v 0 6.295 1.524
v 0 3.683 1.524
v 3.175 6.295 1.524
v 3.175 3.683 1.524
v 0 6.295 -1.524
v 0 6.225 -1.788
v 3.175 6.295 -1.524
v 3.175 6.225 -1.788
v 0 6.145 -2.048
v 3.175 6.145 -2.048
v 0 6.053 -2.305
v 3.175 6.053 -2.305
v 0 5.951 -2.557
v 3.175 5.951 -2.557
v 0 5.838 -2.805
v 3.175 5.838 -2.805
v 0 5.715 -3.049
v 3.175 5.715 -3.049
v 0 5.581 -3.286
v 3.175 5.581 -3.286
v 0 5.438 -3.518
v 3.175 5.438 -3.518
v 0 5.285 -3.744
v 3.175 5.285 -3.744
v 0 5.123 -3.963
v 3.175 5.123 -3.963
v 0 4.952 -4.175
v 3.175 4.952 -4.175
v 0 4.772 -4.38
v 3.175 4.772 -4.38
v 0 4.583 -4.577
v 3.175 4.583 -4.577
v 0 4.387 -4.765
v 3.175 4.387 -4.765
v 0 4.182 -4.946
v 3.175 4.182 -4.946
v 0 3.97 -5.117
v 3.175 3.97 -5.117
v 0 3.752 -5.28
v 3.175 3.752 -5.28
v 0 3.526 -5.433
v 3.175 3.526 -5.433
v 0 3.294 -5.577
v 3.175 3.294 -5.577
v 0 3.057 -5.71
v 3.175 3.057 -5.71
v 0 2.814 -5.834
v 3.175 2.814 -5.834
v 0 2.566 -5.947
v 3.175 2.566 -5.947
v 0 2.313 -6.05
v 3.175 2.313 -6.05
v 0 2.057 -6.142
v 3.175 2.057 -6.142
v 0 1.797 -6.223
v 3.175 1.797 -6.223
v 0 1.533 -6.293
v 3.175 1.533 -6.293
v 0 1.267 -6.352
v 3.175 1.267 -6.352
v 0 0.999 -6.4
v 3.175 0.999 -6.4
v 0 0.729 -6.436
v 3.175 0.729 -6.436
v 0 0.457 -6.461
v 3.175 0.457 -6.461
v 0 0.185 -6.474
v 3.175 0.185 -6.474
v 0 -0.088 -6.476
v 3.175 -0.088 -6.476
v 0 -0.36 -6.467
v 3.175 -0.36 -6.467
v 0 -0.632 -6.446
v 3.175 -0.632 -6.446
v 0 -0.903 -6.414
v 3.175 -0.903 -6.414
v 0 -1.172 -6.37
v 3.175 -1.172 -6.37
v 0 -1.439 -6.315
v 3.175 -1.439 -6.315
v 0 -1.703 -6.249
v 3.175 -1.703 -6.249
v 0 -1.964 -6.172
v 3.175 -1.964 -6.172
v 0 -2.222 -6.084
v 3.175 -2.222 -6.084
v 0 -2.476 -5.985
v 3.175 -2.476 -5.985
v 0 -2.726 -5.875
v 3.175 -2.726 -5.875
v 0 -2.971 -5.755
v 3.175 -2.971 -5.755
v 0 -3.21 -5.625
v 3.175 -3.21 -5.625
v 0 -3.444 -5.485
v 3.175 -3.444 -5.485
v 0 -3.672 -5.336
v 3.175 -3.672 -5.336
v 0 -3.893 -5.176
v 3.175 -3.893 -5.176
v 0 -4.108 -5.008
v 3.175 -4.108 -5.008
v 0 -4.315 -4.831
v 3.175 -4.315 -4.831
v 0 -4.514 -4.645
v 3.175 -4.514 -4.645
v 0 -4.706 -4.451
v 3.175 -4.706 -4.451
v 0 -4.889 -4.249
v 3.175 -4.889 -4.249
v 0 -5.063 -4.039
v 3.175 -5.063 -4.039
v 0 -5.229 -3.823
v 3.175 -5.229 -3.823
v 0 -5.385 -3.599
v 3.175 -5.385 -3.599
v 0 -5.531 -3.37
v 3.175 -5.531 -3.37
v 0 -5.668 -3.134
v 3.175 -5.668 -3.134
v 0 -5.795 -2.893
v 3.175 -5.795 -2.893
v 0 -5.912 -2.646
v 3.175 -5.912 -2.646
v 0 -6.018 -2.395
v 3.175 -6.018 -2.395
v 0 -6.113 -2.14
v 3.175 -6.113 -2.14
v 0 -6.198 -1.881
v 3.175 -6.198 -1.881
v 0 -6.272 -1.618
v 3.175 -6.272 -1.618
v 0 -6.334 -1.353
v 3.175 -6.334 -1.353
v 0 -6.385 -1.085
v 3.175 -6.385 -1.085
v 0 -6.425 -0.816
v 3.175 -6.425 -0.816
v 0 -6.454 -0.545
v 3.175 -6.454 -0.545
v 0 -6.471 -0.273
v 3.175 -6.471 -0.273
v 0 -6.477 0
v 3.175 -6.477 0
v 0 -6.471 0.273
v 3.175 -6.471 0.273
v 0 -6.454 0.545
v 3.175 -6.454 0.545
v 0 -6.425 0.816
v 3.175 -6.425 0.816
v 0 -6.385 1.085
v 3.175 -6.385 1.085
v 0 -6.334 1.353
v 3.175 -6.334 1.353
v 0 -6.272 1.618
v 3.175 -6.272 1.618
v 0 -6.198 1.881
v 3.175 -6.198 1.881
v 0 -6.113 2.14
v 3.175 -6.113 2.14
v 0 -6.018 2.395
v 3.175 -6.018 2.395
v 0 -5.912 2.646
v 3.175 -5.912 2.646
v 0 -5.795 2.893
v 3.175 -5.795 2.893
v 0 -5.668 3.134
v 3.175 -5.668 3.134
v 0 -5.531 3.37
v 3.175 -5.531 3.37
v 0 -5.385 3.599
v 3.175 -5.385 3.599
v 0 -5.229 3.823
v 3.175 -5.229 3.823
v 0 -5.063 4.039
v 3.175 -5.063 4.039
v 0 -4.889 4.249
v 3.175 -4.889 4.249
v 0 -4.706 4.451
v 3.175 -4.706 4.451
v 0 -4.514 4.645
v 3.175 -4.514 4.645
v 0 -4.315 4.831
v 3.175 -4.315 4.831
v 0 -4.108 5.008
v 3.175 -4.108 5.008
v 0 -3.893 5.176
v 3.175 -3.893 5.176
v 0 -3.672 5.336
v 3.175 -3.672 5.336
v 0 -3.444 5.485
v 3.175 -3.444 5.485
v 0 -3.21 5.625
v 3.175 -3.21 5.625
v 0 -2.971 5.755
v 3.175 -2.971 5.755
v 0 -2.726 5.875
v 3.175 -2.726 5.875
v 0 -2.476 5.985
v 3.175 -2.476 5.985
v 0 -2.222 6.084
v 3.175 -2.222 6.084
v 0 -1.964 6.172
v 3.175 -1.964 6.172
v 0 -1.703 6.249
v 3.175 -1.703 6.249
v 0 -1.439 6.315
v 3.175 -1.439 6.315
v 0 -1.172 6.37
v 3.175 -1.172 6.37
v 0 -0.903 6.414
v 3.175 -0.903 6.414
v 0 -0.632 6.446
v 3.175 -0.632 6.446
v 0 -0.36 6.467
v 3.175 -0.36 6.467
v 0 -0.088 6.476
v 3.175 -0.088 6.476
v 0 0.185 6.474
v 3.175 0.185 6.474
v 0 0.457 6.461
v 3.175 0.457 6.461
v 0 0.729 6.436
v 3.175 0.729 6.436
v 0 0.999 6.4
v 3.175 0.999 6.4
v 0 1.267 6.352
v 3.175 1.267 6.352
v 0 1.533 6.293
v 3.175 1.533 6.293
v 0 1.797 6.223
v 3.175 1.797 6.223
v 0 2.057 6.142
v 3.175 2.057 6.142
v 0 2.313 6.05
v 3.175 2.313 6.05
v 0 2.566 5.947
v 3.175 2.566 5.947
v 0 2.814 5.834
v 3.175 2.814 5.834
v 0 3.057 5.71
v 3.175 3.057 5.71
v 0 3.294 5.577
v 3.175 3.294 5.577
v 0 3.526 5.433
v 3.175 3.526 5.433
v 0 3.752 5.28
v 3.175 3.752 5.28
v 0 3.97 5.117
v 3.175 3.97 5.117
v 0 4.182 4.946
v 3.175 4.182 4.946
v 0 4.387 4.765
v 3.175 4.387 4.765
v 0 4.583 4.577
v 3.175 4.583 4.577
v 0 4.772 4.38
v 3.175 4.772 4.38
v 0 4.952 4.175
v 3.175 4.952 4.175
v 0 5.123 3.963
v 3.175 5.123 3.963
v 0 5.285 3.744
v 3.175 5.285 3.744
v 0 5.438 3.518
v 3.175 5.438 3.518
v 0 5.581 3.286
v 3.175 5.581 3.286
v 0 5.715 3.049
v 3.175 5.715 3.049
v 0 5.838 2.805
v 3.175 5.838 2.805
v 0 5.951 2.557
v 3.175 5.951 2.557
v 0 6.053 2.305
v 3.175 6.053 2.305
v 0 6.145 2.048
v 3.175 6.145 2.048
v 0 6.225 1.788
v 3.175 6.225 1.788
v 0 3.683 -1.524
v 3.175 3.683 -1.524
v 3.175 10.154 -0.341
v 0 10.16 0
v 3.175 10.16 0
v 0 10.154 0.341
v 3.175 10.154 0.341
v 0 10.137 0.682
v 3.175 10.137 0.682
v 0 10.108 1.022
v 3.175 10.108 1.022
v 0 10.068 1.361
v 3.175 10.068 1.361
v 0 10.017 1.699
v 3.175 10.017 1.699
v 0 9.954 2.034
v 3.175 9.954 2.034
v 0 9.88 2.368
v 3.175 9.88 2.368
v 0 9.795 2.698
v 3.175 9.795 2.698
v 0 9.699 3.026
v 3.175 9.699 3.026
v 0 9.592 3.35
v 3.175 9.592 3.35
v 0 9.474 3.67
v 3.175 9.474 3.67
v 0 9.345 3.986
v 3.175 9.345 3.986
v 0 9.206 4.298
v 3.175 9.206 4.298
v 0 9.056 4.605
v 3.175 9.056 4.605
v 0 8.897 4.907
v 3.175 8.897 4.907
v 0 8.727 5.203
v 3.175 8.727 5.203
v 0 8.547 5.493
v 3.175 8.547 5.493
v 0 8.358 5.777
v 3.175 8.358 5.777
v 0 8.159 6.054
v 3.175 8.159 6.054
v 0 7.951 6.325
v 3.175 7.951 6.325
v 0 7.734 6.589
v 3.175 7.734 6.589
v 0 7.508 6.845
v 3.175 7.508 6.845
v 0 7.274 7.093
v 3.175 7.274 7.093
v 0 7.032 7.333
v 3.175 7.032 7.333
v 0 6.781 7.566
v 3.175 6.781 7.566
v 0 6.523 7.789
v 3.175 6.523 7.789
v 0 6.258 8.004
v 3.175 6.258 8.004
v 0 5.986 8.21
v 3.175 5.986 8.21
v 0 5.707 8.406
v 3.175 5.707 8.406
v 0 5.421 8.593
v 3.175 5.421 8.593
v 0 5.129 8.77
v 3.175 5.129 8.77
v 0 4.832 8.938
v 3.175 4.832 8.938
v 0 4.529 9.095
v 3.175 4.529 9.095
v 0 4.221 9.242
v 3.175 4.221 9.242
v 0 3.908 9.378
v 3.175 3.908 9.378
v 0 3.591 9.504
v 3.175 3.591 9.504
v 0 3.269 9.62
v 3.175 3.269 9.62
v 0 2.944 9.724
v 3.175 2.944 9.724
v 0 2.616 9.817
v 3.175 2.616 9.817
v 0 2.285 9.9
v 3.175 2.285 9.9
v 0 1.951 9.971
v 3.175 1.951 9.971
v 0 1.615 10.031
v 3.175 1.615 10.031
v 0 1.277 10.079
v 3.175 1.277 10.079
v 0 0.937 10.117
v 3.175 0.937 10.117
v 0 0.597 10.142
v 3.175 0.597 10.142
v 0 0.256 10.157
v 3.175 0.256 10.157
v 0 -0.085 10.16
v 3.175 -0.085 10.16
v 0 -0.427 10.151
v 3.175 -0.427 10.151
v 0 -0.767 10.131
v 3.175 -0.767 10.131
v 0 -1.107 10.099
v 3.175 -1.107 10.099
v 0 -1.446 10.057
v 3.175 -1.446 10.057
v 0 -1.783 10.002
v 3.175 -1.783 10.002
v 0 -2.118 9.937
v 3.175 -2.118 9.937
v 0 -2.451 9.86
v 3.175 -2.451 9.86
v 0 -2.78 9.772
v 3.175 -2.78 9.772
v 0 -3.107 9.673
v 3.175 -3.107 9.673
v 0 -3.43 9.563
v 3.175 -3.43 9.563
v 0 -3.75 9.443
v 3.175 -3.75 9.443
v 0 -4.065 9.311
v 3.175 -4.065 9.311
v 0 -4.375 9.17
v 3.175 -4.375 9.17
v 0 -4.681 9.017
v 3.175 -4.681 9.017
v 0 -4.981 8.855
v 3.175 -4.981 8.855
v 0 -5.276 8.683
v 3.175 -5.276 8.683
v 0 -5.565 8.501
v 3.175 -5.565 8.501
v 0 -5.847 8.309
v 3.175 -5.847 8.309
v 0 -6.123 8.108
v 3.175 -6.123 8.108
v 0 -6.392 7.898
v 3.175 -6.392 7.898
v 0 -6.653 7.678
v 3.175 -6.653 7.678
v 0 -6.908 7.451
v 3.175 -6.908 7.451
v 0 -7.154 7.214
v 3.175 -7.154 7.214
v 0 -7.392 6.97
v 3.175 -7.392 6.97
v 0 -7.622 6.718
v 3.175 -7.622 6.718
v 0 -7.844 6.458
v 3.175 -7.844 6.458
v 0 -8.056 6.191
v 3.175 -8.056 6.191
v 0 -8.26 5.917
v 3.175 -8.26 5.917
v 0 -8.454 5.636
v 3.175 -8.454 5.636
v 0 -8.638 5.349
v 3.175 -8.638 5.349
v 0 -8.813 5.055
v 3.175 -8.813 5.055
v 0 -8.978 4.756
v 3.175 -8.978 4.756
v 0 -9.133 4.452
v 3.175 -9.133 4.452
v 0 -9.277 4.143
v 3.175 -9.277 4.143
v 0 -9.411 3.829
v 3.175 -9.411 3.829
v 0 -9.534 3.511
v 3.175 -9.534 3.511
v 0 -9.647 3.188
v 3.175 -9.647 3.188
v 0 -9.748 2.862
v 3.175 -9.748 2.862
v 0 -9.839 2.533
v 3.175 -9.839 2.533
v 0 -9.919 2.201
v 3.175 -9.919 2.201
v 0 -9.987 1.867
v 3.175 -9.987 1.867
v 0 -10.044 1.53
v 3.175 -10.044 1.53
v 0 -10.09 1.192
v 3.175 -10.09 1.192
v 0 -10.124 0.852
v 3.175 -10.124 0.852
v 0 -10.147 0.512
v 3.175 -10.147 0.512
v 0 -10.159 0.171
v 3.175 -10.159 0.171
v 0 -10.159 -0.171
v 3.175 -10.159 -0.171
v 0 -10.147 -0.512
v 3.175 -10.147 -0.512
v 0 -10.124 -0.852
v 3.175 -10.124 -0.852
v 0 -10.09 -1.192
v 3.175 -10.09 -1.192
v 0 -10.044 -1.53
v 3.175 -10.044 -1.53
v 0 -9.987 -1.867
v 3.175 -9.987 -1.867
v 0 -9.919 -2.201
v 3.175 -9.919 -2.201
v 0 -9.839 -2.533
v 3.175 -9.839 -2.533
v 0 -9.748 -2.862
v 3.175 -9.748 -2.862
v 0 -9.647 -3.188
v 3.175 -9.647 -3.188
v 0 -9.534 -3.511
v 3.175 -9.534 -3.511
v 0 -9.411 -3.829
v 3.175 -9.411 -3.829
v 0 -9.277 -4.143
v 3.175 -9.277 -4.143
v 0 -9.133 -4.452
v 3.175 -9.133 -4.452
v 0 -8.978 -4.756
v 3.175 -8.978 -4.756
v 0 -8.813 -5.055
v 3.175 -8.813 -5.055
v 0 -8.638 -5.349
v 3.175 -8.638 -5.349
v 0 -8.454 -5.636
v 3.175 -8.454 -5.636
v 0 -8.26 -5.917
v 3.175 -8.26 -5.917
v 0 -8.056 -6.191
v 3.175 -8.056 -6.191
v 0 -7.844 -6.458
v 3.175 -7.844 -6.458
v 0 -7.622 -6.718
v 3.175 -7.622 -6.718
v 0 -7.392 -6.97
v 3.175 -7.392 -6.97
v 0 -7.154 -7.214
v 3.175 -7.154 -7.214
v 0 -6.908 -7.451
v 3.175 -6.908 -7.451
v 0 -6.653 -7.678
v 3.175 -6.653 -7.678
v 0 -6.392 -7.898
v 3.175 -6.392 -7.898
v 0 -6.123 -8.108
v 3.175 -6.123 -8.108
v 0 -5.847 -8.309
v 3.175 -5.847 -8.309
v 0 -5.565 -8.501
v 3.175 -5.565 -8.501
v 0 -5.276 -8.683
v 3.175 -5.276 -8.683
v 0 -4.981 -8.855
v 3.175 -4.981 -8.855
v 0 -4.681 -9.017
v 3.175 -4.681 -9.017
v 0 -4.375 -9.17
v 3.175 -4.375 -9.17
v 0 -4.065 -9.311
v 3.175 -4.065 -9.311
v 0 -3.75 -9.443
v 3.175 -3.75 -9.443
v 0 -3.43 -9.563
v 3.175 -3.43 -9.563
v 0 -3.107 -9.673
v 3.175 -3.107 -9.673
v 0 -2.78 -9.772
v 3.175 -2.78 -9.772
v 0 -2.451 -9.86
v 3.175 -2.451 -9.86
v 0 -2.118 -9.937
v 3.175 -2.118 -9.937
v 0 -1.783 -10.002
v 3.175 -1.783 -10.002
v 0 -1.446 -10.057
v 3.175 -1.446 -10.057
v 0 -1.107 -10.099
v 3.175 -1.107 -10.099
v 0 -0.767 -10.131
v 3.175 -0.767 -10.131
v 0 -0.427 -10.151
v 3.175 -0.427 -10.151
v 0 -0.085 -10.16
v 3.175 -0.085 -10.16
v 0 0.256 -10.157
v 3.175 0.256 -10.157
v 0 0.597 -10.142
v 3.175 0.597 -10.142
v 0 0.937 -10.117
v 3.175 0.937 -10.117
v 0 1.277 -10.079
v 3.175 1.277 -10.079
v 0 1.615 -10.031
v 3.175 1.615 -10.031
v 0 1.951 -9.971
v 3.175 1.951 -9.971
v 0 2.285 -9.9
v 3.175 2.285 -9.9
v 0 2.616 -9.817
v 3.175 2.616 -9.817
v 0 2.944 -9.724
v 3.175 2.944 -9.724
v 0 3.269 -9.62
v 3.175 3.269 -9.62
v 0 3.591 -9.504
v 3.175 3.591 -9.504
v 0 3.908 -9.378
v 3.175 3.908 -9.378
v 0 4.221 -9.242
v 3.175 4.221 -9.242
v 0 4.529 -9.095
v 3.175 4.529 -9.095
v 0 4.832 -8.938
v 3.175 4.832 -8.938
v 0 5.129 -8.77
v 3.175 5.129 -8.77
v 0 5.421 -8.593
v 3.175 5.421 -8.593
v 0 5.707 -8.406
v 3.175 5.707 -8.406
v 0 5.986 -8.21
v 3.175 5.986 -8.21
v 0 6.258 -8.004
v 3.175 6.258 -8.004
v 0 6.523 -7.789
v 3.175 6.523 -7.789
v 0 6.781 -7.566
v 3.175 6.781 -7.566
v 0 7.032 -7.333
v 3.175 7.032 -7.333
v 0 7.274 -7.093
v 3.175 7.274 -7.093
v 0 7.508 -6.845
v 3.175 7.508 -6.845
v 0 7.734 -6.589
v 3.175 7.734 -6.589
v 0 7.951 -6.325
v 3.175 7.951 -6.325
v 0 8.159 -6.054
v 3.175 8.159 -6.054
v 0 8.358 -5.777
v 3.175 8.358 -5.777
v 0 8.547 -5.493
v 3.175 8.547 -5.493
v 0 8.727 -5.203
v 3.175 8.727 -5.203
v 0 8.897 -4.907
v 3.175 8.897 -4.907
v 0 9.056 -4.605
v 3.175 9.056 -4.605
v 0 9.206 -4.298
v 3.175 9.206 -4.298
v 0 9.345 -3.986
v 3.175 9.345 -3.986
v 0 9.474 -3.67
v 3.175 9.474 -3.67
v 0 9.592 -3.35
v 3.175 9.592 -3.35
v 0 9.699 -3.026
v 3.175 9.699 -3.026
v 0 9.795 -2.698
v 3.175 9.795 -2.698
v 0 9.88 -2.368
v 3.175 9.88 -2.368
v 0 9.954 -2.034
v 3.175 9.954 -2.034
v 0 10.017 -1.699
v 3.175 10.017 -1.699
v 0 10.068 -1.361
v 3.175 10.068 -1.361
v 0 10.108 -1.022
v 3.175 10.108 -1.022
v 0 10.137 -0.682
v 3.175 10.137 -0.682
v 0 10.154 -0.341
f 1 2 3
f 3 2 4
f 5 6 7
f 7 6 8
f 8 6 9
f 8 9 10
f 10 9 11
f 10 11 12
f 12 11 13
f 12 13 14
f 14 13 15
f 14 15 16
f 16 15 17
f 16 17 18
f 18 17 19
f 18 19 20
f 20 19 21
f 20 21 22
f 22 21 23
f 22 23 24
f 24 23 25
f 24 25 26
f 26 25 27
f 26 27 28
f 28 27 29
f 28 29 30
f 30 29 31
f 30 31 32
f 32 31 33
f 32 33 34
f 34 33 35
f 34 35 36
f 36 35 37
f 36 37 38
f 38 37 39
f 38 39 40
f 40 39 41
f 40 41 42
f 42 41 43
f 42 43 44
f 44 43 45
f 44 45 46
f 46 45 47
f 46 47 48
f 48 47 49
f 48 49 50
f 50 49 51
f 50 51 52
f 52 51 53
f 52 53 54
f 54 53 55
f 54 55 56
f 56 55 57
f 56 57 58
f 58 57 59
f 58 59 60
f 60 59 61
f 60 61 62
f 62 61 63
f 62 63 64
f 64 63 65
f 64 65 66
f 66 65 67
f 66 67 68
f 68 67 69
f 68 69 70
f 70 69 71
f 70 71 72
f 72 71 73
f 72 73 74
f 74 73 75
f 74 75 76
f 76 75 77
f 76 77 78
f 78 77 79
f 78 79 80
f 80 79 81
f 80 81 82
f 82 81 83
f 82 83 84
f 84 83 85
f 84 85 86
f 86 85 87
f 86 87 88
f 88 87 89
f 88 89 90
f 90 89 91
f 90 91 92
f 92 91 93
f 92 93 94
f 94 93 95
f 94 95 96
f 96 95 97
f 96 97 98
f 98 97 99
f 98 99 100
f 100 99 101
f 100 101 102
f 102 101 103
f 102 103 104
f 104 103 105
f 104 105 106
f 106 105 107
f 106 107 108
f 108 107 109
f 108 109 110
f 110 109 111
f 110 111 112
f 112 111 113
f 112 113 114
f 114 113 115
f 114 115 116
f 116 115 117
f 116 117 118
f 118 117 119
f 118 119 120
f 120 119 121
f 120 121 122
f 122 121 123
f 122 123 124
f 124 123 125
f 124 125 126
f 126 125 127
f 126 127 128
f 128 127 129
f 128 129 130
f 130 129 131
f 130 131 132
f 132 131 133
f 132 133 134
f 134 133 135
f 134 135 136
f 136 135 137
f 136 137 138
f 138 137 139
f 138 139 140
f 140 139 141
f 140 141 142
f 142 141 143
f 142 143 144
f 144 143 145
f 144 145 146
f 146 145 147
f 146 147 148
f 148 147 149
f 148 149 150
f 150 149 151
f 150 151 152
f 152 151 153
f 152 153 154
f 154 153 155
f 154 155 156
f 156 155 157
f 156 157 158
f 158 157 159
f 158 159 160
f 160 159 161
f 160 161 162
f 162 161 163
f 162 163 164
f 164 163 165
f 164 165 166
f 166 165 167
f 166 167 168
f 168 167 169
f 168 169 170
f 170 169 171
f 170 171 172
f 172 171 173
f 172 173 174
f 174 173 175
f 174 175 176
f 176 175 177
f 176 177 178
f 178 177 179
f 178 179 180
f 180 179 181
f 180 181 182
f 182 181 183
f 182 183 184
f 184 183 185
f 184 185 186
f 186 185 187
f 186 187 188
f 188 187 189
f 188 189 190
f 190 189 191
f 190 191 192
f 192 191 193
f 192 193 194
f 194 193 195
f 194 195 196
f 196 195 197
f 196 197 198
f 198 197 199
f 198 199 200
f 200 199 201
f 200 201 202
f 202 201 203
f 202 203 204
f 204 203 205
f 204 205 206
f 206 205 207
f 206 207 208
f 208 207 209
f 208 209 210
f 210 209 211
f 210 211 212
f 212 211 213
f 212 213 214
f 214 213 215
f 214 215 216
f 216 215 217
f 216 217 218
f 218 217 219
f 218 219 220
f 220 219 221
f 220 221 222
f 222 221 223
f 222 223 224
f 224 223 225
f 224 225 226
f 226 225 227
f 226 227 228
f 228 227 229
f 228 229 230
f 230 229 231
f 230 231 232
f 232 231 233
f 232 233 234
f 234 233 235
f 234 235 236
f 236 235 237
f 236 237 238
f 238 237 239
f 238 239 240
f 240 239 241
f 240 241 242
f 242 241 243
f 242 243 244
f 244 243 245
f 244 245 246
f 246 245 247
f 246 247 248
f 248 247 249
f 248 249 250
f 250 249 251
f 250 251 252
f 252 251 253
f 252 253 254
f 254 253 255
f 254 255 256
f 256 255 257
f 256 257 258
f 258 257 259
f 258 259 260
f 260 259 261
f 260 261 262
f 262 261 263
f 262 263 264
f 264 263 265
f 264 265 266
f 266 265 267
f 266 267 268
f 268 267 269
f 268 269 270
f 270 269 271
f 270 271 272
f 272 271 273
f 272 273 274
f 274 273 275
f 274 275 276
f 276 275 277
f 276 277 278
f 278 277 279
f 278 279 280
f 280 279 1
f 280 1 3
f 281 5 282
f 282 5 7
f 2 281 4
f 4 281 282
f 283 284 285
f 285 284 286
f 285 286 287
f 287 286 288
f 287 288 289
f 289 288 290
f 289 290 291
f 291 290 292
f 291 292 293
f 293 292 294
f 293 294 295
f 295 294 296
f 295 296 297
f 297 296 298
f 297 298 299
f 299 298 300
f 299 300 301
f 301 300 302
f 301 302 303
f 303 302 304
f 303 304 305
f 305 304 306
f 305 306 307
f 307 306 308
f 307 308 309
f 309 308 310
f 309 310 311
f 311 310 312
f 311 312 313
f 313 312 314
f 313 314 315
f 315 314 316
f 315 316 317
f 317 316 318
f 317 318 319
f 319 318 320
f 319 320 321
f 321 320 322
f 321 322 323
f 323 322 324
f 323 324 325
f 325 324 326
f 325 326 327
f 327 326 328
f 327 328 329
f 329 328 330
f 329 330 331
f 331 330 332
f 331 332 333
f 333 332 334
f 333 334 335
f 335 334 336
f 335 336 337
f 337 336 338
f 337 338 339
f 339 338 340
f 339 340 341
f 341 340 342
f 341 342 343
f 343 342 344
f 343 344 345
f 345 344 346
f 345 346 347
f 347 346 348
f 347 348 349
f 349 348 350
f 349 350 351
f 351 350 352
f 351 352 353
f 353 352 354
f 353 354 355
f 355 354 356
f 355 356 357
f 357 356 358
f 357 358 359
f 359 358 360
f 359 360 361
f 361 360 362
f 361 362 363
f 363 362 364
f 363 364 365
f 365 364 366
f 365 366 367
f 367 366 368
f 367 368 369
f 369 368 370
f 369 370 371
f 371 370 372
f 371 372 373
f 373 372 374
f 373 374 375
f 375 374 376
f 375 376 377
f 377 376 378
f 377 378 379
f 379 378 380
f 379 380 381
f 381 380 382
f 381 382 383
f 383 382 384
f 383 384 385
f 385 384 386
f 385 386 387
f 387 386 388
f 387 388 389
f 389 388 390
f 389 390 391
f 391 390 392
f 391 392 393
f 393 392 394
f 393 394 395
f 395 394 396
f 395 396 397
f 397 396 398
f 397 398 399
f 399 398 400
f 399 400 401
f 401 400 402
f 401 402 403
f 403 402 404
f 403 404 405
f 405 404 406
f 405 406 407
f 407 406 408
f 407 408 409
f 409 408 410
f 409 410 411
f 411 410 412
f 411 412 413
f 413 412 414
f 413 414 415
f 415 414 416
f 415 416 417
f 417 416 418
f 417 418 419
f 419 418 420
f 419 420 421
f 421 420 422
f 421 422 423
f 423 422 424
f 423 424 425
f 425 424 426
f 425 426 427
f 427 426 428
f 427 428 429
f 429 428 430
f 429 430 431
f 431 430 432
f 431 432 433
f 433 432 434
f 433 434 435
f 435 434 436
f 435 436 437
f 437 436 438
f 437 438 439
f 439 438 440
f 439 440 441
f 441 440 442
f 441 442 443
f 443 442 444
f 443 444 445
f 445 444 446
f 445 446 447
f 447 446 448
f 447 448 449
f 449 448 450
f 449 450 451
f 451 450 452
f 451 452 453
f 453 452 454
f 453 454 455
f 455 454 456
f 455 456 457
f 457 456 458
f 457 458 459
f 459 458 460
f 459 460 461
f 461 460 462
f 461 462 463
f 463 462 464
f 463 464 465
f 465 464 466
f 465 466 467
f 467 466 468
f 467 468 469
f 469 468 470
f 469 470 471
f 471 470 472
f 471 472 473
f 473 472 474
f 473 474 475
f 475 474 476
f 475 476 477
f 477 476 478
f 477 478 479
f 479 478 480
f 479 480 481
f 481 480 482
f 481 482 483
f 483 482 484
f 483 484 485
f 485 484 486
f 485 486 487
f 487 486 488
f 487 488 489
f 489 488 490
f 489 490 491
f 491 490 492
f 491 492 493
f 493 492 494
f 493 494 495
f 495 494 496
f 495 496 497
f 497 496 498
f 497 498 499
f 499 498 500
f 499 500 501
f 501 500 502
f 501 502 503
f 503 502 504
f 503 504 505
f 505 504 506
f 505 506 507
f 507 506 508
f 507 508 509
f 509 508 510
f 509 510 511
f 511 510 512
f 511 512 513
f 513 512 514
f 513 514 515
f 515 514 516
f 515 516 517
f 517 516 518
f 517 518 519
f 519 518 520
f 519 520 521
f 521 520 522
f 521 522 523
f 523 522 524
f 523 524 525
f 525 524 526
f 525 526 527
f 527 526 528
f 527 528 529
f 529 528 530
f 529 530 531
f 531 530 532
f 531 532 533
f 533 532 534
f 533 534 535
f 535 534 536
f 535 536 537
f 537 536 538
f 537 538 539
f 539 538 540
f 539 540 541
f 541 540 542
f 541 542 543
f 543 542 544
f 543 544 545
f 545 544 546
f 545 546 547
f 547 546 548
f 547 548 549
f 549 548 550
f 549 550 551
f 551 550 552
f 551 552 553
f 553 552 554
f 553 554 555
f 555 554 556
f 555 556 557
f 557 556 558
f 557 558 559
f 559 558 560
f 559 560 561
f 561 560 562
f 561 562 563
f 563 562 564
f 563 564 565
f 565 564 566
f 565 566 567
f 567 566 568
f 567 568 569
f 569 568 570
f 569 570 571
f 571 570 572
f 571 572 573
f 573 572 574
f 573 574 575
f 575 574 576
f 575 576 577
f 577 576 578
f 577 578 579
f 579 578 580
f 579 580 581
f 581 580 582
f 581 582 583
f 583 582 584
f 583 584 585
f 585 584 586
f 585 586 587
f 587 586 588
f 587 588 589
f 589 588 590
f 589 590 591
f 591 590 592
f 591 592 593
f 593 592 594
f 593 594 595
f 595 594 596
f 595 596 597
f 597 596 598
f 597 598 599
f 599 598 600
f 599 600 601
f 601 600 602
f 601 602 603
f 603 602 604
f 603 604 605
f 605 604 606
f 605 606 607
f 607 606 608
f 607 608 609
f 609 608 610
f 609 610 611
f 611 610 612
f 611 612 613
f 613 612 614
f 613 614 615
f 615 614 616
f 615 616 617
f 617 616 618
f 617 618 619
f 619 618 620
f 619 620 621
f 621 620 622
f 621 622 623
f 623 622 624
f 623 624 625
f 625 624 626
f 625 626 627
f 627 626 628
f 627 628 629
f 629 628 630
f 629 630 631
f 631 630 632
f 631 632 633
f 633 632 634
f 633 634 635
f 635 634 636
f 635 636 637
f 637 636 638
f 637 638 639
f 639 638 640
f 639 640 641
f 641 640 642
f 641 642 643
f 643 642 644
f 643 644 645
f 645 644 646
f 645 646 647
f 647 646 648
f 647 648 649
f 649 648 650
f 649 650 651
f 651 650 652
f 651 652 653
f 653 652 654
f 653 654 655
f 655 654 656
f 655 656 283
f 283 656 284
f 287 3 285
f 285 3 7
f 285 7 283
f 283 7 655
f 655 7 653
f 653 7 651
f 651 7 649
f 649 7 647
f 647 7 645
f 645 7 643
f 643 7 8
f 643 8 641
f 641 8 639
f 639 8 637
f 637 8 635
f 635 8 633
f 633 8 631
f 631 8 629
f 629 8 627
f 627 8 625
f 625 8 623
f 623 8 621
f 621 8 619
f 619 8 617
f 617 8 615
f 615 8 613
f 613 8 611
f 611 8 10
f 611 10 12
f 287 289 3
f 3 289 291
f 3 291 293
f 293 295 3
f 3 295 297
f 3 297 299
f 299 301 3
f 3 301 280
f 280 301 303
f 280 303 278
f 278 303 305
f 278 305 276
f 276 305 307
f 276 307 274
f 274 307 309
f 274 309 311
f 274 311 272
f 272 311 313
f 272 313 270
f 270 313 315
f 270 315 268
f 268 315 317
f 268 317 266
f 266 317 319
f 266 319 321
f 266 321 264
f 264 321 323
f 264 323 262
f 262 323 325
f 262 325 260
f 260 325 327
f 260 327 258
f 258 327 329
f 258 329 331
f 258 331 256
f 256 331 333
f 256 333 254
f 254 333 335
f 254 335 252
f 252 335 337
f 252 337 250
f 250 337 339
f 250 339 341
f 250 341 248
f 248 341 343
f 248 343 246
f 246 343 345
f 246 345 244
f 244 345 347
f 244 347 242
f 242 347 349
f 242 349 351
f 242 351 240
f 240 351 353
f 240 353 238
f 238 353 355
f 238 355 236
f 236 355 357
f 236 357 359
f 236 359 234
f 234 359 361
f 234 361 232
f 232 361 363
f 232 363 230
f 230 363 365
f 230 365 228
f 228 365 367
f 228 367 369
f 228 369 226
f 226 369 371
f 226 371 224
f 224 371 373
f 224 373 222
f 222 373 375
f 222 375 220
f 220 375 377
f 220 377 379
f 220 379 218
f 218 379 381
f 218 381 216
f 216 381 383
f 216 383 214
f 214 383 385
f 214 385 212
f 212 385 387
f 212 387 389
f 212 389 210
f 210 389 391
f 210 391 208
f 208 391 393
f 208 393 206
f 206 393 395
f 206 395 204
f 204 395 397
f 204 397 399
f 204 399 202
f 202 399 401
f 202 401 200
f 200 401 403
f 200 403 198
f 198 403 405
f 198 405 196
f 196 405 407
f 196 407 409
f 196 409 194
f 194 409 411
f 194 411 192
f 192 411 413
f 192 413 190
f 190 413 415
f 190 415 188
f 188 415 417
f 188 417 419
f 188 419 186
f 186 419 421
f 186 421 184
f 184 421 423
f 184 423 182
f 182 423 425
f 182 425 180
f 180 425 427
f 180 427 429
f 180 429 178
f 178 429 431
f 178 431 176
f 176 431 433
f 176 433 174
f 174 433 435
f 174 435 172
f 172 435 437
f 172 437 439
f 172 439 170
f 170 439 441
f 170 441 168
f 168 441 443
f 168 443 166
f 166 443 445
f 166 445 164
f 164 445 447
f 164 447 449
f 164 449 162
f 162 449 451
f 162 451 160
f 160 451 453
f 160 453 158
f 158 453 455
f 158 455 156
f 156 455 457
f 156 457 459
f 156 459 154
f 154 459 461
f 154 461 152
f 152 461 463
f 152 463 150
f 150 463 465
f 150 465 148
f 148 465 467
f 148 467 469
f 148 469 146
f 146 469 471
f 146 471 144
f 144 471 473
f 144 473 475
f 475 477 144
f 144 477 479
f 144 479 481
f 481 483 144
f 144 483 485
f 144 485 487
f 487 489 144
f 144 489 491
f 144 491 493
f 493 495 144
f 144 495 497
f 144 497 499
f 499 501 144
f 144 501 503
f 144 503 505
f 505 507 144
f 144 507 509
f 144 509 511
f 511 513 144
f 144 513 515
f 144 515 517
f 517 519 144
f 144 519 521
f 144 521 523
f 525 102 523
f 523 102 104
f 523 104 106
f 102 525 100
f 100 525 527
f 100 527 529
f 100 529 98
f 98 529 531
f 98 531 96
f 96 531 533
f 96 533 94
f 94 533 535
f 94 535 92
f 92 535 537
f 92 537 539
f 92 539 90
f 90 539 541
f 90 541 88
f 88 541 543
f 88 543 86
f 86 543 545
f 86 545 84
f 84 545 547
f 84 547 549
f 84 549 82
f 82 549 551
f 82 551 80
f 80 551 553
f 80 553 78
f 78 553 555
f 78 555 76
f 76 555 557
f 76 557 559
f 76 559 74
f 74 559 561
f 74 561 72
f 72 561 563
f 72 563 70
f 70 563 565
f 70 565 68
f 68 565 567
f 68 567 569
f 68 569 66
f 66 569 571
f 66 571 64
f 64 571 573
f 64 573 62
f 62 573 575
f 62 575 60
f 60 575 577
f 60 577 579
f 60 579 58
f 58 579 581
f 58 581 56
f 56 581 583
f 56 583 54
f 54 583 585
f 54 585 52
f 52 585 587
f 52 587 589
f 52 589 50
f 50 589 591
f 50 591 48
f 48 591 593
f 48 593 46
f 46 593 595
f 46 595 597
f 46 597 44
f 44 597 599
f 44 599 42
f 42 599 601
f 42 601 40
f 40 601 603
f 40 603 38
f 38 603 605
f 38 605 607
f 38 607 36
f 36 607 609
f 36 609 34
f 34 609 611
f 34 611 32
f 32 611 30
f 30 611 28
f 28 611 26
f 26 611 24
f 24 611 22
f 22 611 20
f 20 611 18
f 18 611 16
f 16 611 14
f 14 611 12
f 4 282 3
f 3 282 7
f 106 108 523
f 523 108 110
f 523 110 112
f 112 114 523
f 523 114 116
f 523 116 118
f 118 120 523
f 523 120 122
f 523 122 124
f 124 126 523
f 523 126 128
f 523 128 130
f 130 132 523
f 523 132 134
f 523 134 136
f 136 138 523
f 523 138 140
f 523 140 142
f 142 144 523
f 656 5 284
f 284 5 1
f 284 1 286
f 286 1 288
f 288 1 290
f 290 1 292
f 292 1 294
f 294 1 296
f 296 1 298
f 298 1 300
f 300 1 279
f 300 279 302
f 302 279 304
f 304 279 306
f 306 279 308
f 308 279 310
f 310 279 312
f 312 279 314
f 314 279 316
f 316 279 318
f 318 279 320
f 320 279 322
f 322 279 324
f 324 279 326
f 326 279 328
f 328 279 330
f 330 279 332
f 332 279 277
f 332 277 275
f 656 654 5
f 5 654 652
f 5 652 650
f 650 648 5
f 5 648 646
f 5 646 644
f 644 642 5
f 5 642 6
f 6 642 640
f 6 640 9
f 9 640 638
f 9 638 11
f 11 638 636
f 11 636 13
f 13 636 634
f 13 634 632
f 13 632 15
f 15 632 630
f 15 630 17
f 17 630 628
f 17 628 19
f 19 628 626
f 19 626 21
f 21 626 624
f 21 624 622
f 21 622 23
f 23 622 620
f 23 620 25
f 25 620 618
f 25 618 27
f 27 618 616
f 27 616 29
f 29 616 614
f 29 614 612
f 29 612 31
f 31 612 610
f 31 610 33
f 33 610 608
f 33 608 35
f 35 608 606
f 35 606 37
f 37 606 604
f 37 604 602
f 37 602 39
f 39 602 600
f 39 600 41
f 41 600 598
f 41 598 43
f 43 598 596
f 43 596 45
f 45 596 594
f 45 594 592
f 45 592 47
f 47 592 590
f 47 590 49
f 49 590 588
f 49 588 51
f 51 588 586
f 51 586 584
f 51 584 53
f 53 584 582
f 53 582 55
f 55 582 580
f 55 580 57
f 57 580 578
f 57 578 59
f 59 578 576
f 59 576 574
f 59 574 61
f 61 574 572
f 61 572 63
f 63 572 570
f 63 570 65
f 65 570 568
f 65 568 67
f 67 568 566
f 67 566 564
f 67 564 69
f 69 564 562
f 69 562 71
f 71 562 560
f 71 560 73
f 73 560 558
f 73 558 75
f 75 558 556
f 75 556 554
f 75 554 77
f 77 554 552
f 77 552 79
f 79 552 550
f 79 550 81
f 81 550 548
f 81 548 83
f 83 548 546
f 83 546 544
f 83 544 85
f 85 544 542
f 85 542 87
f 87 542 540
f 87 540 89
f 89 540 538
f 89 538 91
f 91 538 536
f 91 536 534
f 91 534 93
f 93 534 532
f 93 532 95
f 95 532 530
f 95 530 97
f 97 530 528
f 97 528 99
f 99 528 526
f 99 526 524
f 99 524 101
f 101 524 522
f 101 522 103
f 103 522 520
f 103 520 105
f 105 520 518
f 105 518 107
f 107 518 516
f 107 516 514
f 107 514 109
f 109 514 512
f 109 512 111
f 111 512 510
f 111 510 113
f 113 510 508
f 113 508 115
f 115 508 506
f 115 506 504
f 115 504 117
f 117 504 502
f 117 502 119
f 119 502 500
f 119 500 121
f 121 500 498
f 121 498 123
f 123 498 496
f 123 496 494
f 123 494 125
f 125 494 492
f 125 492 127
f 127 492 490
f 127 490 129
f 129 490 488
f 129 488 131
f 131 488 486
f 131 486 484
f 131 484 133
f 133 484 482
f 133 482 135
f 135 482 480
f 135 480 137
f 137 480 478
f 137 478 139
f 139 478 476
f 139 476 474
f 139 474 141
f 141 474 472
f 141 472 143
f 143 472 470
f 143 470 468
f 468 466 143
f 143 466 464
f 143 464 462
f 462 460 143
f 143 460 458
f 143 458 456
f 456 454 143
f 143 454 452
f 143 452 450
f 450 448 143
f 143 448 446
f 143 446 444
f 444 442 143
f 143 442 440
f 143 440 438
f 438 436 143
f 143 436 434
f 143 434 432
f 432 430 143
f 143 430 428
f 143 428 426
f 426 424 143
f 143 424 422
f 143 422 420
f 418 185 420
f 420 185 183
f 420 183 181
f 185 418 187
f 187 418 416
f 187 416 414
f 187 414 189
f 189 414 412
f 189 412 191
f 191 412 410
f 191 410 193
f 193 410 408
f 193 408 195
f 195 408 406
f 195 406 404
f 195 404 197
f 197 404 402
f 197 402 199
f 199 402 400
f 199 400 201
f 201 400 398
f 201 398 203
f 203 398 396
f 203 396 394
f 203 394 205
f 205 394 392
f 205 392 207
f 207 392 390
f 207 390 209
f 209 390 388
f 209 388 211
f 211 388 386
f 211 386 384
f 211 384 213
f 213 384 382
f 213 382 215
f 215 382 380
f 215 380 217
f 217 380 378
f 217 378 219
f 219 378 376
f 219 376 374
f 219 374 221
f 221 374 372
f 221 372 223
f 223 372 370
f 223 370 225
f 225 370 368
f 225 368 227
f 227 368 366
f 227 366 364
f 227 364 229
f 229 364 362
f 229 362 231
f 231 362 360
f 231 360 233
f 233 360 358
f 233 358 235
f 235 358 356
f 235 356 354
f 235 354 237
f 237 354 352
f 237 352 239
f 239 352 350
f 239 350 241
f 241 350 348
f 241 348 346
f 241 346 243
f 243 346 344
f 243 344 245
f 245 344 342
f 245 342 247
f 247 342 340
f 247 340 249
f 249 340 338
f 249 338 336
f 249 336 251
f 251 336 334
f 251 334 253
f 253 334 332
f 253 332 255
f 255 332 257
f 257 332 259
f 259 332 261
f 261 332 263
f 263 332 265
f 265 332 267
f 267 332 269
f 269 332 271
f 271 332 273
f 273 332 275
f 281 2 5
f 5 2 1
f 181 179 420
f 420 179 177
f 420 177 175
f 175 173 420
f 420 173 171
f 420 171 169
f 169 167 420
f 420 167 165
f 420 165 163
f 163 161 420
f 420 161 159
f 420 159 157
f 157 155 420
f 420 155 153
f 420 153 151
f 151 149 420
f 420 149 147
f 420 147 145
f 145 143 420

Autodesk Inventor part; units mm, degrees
ref_plane "YZ Plane" through (0, 0, 0) normal (1, 0, 0) x (0, 1, 0)
ref_plane "XZ Plane" through (0, 0, 0) normal (0, 1, 0) x (-1, 0, 0)
ref_plane "XY Plane" through (0, 0, 0) normal (0, 0, 1) x (1, 0, 0)
sketch "Sketch1" plane through (0, 0, 0) normal (1, 0, 0) x (0, 1, 0)
  circle A0 centre (0, 0) radius 6.477
  line L0 (9.271, 1.524) -> (9.271, -1.524)
  line L1 (9.271, -1.524) -> (3.683, -1.524)
  line L2 (3.683, -1.524) -> (3.683, 1.524)
  line L3 (3.683, 1.524) -> (9.271, 1.524)
  line L4 (9.271, 1.524) -> (3.683, -1.524) construction
  line L5 (9.271, -1.524) -> (3.683, 1.524) construction
  circle A1 centre (0, 0) radius 10.16
  line L6 (9.271, 1.524) -> (10.045, 1.524)
  line L7 (9.271, -1.524) -> (10.045, -1.524)
  point P0 (6.477, 0)
  point P1 (6.2952, -1.524)
  point P2 (6.2952, 1.524)
  dimension "d0" = 12.954
  dimension "d1" = 3.048
  dimension "d2" = 5.588
  dimension "d3" = 20.32
extrude "Extrusion1" add sketch "Sketch1" along normal blind 3.175 contours A0 L1 L2 L3 | A0 L3 L0 L1 | A0 L1 L7 A1 L6 L3 | L6 A1 L7 L0 picked at (4.6143, 0)
properties part number "handle insert cover"
